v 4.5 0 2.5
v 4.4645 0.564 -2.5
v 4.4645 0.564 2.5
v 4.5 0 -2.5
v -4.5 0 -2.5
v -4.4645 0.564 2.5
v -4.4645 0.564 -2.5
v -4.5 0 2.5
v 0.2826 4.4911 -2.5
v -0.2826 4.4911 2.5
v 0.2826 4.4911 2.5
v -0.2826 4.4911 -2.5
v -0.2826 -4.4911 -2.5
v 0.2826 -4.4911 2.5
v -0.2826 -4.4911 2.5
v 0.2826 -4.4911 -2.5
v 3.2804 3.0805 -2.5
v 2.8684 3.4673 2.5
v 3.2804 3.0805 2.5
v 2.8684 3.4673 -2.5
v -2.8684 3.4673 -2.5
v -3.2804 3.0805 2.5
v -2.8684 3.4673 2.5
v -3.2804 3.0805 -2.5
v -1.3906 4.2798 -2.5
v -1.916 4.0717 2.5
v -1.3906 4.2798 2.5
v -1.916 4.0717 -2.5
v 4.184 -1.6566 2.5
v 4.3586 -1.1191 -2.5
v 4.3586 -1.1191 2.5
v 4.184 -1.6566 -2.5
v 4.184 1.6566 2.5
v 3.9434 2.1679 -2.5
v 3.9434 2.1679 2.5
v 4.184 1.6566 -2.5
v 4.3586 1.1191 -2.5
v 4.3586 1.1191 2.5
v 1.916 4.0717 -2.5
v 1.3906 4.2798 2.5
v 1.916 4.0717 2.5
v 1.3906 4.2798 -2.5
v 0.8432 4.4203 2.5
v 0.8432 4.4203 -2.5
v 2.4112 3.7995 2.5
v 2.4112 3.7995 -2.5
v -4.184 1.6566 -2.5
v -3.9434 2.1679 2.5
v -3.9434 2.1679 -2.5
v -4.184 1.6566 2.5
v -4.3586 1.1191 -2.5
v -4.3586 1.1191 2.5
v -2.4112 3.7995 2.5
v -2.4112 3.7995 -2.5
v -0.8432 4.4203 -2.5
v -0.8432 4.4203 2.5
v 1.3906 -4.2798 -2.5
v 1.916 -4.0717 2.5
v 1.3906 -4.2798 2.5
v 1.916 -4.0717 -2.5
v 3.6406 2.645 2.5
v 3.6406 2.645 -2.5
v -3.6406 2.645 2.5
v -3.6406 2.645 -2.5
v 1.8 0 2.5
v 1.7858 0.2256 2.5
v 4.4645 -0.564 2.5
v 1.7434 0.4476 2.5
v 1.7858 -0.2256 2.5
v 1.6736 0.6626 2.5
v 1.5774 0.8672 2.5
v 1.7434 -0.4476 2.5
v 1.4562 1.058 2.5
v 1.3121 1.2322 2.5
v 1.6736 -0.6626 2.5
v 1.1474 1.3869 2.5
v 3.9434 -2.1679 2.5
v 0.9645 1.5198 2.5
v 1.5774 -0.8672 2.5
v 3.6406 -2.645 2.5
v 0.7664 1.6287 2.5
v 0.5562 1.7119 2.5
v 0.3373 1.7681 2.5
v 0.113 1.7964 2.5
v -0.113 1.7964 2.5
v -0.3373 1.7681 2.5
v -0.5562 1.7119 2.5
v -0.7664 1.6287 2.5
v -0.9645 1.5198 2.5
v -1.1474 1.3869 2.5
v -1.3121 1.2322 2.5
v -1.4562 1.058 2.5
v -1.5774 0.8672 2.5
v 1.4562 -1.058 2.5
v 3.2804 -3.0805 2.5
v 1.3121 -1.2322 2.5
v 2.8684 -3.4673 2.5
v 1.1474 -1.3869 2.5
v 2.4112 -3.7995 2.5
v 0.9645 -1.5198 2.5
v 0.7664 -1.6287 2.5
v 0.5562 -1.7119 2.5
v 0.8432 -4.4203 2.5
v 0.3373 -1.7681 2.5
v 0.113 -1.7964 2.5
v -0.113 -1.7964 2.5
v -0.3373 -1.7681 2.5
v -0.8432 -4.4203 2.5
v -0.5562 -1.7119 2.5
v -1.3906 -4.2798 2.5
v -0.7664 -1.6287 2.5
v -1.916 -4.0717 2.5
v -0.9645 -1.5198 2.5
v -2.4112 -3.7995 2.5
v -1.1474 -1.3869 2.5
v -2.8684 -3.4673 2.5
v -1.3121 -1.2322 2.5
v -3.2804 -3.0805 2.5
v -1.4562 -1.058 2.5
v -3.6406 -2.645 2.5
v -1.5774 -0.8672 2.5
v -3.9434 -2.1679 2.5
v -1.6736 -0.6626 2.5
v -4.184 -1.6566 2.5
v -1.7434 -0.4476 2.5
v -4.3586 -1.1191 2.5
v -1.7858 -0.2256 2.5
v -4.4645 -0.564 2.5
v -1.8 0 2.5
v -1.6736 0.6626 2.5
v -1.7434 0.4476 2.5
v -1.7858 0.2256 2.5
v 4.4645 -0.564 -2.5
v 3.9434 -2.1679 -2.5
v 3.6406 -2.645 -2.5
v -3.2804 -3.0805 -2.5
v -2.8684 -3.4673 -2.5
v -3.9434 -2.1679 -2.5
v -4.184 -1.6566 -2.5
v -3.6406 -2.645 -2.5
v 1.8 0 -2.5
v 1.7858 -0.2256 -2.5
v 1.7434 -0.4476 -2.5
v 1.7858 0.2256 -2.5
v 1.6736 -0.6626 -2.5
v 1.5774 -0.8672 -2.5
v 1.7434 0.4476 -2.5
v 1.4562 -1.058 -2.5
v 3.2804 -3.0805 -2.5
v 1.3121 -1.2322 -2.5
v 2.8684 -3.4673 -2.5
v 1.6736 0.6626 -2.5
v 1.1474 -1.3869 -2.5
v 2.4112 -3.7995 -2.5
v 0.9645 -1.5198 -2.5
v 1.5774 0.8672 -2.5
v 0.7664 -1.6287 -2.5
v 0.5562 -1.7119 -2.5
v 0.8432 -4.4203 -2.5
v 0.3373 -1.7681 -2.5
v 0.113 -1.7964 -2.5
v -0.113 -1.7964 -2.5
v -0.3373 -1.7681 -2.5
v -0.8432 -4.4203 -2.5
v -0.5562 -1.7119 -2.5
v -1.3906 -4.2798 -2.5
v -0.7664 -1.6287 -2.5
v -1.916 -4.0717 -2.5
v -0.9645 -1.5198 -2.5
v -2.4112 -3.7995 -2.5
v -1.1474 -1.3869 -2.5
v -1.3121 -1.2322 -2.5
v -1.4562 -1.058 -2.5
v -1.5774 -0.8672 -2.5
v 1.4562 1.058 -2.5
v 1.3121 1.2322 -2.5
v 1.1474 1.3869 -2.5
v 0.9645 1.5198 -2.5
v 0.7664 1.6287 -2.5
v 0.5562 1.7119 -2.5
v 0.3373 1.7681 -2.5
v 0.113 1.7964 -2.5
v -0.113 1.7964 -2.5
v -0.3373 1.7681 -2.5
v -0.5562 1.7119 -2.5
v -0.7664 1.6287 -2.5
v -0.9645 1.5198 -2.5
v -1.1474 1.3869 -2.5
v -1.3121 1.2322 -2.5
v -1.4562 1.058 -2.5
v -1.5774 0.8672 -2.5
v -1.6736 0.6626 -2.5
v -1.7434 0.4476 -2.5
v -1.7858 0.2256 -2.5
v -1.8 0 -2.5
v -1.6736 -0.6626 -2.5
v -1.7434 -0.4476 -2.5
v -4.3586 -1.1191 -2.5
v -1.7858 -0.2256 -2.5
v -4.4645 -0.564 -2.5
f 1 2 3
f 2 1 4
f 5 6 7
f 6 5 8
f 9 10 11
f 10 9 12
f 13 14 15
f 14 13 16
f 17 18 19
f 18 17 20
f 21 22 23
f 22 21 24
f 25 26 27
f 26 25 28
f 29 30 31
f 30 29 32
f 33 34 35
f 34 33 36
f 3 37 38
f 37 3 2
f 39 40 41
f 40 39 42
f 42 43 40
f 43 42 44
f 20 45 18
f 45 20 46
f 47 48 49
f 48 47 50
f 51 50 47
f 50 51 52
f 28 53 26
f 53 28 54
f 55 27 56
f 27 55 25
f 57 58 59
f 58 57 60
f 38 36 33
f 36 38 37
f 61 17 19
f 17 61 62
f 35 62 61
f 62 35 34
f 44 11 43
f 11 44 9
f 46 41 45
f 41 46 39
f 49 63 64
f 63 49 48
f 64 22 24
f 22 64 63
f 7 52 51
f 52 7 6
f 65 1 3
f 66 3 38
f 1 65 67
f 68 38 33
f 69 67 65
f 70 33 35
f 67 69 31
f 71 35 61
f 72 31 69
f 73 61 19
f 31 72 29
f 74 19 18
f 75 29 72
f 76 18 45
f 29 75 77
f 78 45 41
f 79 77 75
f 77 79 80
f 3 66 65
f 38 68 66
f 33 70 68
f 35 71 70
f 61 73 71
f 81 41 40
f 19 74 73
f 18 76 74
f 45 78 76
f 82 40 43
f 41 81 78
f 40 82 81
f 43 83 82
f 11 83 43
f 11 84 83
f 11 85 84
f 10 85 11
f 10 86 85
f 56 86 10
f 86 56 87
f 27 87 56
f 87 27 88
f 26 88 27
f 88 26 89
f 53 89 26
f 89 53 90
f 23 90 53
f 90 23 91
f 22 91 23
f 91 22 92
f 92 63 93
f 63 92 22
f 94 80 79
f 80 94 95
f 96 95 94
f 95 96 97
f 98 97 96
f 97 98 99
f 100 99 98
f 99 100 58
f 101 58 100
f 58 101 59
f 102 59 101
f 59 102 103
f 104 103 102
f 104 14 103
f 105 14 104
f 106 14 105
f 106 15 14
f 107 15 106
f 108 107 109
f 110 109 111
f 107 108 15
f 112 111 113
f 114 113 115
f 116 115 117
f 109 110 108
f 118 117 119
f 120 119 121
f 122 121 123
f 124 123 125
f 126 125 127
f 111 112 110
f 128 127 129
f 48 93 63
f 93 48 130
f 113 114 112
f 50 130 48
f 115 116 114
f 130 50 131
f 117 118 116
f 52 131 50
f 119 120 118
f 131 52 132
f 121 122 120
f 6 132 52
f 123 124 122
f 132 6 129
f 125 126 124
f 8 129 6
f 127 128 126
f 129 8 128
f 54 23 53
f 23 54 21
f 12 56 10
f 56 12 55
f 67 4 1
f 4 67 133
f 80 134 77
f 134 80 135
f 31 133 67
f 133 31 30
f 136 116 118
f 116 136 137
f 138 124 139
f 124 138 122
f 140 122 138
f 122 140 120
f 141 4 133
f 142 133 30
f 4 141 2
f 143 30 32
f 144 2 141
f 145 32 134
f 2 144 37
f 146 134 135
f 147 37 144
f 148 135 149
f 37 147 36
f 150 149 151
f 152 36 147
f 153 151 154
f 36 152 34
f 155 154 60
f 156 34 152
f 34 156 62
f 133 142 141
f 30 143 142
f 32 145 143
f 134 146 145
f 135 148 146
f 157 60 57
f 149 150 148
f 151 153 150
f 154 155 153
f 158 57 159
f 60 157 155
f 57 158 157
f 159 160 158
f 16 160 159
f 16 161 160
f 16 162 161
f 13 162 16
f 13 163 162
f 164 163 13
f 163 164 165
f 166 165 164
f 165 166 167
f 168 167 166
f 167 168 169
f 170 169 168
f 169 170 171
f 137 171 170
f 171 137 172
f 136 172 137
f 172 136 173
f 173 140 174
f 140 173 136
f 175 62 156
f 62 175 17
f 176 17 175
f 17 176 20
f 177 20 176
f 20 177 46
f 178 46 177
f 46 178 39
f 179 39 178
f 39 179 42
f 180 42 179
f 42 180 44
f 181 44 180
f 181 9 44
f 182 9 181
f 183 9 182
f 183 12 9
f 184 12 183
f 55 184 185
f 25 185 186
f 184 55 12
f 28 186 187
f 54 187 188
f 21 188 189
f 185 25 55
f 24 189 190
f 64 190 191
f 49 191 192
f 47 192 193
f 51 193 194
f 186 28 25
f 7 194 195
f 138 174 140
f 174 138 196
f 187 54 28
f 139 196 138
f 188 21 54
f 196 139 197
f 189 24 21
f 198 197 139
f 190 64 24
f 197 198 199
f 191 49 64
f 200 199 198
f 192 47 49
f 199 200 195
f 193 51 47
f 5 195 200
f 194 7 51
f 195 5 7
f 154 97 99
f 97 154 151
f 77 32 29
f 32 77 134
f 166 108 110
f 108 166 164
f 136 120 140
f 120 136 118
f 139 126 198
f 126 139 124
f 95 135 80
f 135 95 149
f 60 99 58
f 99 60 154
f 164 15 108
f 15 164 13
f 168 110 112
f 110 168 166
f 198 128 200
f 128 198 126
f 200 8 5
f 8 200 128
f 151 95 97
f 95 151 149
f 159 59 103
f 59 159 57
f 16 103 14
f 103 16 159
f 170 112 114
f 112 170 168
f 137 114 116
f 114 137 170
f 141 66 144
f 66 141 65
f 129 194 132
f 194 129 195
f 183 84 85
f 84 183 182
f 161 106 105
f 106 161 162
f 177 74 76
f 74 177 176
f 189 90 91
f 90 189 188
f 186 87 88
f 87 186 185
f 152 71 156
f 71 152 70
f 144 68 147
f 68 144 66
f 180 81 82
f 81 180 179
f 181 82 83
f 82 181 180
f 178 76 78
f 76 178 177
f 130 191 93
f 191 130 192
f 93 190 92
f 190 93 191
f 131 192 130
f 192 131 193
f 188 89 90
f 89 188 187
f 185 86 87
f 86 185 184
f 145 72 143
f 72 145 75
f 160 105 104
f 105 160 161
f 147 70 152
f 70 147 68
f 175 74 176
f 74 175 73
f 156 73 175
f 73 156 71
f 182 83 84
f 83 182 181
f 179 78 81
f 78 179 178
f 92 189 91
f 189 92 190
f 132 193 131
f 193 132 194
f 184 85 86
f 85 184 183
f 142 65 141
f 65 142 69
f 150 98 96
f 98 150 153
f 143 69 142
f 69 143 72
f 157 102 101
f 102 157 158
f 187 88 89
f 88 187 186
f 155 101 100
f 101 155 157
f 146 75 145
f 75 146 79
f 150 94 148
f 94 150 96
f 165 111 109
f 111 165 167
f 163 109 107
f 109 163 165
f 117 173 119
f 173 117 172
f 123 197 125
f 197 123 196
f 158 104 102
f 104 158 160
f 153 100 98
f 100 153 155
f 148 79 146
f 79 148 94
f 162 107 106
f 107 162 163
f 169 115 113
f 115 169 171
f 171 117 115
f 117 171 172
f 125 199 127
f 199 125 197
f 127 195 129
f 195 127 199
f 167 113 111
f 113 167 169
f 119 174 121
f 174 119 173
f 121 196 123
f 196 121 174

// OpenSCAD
$fn = 50;


difference() {
	union() {
		translate(v = [0, 0, -2.5000000000]) {
			cylinder(h = 5, r = 4.5000000000);
		}
	}
	union() {
		translate(v = [0, 0, -100.0000000000]) {
			cylinder(h = 200, r = 1.8000000000);
		}
	}
}
